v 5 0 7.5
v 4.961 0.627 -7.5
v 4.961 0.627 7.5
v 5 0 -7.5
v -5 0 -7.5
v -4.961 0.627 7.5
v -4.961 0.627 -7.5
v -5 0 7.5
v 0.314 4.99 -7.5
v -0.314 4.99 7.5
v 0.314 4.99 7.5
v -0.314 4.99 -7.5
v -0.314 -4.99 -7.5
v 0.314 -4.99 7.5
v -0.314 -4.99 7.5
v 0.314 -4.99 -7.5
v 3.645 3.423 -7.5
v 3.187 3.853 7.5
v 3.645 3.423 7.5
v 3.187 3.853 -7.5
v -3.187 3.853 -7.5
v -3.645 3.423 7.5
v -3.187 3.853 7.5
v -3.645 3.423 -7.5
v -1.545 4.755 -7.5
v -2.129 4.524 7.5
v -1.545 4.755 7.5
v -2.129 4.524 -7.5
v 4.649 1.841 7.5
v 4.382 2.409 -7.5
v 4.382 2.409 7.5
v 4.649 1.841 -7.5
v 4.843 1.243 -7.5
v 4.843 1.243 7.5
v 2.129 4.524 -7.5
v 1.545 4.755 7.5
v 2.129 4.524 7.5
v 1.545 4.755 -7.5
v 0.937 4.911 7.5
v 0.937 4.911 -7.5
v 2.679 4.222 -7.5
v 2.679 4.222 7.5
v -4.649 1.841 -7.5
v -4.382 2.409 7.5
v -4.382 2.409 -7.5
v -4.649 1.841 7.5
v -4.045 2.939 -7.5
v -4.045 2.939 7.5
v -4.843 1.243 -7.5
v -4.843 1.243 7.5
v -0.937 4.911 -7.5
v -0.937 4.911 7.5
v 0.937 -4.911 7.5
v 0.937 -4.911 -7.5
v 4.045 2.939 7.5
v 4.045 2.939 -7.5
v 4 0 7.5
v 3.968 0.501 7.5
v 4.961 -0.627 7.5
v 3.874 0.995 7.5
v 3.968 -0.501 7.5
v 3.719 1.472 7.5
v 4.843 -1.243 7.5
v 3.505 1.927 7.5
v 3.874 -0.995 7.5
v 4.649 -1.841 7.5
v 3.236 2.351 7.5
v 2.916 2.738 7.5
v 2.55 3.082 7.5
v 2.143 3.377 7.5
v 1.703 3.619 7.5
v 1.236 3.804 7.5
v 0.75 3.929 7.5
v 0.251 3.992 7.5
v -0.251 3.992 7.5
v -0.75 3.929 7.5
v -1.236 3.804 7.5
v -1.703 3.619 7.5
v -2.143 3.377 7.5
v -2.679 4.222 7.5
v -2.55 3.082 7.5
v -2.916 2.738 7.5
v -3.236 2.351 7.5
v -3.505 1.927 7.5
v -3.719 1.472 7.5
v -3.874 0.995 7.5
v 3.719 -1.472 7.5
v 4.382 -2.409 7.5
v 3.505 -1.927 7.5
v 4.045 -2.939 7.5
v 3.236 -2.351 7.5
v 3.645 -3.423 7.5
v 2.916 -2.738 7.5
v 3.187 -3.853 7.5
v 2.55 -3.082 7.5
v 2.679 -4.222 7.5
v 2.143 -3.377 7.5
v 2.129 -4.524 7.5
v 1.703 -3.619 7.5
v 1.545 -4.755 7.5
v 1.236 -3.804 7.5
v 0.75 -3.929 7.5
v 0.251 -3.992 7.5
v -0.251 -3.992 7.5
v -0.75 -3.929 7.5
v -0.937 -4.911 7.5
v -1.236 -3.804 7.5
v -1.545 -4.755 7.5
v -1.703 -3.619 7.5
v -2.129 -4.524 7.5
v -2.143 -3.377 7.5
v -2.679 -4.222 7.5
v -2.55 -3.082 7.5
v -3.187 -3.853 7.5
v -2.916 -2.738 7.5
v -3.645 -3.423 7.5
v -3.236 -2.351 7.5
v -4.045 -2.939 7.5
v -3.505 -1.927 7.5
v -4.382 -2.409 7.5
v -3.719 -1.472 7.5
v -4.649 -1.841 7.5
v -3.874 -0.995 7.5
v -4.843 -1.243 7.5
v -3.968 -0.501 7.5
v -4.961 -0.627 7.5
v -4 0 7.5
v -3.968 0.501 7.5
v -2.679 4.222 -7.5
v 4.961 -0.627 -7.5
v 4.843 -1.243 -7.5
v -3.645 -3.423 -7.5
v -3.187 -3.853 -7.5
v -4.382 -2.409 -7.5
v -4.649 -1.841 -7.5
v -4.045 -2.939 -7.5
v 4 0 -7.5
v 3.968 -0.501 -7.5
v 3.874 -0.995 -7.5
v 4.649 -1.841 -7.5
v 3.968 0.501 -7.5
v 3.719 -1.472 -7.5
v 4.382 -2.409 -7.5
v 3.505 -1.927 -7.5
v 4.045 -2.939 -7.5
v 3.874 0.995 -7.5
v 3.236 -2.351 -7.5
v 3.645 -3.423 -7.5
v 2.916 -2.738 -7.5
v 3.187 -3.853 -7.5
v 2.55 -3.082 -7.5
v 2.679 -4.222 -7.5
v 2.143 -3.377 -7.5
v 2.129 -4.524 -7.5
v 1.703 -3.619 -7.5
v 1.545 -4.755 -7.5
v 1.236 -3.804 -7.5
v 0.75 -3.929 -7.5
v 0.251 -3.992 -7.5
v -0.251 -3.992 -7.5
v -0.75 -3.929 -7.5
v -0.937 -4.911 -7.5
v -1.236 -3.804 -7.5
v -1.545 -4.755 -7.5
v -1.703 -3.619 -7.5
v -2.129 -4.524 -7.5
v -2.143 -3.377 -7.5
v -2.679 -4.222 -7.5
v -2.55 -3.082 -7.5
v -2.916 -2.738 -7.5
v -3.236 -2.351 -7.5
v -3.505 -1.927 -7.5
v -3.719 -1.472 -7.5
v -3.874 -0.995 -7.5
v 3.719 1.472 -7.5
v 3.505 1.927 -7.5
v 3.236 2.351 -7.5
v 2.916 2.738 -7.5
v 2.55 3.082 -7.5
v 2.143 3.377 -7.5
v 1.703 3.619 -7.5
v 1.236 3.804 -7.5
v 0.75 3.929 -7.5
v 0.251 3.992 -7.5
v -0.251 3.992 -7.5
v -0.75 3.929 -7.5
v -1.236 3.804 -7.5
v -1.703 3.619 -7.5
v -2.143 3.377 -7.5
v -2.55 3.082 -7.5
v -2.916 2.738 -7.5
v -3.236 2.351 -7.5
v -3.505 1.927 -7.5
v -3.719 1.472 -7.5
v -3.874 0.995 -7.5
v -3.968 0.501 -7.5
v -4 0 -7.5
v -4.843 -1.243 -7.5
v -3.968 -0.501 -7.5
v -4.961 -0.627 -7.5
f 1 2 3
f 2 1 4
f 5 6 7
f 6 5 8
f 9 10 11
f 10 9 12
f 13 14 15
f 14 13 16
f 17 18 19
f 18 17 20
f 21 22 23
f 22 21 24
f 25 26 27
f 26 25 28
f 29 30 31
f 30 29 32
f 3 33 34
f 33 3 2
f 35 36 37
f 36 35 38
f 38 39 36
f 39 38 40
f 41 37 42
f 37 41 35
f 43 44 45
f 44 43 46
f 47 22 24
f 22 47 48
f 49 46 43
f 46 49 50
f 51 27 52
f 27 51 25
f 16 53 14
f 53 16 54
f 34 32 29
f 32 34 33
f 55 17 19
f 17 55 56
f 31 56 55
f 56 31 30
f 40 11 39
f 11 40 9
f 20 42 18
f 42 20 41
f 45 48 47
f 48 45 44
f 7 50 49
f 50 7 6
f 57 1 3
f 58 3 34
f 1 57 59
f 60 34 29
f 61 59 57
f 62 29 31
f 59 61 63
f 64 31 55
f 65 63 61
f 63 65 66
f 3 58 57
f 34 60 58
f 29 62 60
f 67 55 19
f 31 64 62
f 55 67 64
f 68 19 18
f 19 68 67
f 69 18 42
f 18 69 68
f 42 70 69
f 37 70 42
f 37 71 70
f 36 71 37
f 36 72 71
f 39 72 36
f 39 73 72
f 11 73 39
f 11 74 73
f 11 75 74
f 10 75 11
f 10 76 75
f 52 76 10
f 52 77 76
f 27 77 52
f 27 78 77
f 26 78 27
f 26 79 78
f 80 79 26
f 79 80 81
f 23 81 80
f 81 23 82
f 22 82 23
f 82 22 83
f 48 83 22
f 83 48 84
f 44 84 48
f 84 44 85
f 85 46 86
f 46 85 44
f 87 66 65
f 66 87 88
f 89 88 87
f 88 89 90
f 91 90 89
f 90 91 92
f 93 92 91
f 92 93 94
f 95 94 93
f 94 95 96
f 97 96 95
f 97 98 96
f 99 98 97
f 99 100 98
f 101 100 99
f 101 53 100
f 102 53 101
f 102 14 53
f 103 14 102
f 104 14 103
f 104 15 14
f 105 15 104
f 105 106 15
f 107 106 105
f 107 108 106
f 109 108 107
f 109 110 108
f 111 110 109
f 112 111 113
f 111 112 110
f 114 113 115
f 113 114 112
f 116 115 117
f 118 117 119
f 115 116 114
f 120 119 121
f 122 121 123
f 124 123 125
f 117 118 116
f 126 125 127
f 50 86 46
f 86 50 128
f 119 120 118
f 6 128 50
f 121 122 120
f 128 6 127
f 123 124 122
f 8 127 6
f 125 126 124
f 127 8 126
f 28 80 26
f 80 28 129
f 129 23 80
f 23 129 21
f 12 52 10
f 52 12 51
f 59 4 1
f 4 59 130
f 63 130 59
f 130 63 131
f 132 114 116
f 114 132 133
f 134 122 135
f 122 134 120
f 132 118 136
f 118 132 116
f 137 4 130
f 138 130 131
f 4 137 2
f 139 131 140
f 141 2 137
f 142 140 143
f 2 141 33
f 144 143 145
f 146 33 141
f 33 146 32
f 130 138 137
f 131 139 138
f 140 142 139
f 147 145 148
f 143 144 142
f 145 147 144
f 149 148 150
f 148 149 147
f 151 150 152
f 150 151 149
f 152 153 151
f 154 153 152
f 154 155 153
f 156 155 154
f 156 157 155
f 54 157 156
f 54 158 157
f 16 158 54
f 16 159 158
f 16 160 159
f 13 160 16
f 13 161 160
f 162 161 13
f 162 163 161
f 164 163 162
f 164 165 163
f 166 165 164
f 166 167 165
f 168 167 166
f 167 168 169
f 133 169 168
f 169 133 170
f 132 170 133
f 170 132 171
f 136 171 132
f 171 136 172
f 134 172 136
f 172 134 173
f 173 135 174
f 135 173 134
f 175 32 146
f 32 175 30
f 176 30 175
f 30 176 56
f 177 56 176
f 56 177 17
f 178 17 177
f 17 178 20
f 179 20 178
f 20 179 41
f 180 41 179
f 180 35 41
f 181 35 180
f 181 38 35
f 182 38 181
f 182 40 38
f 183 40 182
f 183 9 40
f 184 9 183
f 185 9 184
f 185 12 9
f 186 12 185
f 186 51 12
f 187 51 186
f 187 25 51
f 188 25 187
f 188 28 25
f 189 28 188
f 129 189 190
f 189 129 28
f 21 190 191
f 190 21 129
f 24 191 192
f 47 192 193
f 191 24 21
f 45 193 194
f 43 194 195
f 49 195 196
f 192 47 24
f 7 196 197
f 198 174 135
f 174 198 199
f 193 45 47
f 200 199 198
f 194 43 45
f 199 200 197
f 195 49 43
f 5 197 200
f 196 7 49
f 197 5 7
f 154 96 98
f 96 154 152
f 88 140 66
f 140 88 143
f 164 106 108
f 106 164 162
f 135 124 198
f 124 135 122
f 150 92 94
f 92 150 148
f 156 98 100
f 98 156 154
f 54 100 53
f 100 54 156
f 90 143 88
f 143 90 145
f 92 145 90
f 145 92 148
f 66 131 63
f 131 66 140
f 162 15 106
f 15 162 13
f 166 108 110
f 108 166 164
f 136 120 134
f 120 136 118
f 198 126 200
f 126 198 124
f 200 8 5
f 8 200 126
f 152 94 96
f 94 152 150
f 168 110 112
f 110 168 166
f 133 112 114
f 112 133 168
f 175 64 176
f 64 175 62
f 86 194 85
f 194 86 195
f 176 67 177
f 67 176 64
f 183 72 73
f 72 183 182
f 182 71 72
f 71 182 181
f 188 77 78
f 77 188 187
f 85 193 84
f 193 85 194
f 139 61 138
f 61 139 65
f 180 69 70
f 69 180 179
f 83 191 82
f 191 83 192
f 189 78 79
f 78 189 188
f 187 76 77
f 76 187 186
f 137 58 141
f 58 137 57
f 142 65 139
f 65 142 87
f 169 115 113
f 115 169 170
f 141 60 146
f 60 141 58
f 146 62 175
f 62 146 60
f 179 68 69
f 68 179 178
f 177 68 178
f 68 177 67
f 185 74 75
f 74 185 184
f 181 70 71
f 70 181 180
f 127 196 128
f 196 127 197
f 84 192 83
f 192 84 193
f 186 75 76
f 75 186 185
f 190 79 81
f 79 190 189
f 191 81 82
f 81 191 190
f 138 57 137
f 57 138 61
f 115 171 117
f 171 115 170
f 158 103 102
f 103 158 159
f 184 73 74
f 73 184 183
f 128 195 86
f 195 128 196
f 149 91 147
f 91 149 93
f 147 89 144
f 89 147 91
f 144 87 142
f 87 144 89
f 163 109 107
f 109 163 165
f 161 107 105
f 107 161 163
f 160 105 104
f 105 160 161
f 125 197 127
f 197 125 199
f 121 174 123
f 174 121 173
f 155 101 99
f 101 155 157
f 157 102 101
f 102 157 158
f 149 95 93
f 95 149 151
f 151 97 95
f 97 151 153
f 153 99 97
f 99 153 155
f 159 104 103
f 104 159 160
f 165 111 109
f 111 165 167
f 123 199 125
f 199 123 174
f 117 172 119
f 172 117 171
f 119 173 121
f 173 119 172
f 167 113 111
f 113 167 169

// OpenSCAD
$fn = 50;


difference() {
	union() {
		translate(v = [0, 0, -7.5000000000]) {
			cylinder(h = 15, r = 5.0000000000);
		}
	}
	union() {
		translate(v = [0, 0, -100.0000000000]) {
			cylinder(h = 200, r = 4);
		}
	}
}
